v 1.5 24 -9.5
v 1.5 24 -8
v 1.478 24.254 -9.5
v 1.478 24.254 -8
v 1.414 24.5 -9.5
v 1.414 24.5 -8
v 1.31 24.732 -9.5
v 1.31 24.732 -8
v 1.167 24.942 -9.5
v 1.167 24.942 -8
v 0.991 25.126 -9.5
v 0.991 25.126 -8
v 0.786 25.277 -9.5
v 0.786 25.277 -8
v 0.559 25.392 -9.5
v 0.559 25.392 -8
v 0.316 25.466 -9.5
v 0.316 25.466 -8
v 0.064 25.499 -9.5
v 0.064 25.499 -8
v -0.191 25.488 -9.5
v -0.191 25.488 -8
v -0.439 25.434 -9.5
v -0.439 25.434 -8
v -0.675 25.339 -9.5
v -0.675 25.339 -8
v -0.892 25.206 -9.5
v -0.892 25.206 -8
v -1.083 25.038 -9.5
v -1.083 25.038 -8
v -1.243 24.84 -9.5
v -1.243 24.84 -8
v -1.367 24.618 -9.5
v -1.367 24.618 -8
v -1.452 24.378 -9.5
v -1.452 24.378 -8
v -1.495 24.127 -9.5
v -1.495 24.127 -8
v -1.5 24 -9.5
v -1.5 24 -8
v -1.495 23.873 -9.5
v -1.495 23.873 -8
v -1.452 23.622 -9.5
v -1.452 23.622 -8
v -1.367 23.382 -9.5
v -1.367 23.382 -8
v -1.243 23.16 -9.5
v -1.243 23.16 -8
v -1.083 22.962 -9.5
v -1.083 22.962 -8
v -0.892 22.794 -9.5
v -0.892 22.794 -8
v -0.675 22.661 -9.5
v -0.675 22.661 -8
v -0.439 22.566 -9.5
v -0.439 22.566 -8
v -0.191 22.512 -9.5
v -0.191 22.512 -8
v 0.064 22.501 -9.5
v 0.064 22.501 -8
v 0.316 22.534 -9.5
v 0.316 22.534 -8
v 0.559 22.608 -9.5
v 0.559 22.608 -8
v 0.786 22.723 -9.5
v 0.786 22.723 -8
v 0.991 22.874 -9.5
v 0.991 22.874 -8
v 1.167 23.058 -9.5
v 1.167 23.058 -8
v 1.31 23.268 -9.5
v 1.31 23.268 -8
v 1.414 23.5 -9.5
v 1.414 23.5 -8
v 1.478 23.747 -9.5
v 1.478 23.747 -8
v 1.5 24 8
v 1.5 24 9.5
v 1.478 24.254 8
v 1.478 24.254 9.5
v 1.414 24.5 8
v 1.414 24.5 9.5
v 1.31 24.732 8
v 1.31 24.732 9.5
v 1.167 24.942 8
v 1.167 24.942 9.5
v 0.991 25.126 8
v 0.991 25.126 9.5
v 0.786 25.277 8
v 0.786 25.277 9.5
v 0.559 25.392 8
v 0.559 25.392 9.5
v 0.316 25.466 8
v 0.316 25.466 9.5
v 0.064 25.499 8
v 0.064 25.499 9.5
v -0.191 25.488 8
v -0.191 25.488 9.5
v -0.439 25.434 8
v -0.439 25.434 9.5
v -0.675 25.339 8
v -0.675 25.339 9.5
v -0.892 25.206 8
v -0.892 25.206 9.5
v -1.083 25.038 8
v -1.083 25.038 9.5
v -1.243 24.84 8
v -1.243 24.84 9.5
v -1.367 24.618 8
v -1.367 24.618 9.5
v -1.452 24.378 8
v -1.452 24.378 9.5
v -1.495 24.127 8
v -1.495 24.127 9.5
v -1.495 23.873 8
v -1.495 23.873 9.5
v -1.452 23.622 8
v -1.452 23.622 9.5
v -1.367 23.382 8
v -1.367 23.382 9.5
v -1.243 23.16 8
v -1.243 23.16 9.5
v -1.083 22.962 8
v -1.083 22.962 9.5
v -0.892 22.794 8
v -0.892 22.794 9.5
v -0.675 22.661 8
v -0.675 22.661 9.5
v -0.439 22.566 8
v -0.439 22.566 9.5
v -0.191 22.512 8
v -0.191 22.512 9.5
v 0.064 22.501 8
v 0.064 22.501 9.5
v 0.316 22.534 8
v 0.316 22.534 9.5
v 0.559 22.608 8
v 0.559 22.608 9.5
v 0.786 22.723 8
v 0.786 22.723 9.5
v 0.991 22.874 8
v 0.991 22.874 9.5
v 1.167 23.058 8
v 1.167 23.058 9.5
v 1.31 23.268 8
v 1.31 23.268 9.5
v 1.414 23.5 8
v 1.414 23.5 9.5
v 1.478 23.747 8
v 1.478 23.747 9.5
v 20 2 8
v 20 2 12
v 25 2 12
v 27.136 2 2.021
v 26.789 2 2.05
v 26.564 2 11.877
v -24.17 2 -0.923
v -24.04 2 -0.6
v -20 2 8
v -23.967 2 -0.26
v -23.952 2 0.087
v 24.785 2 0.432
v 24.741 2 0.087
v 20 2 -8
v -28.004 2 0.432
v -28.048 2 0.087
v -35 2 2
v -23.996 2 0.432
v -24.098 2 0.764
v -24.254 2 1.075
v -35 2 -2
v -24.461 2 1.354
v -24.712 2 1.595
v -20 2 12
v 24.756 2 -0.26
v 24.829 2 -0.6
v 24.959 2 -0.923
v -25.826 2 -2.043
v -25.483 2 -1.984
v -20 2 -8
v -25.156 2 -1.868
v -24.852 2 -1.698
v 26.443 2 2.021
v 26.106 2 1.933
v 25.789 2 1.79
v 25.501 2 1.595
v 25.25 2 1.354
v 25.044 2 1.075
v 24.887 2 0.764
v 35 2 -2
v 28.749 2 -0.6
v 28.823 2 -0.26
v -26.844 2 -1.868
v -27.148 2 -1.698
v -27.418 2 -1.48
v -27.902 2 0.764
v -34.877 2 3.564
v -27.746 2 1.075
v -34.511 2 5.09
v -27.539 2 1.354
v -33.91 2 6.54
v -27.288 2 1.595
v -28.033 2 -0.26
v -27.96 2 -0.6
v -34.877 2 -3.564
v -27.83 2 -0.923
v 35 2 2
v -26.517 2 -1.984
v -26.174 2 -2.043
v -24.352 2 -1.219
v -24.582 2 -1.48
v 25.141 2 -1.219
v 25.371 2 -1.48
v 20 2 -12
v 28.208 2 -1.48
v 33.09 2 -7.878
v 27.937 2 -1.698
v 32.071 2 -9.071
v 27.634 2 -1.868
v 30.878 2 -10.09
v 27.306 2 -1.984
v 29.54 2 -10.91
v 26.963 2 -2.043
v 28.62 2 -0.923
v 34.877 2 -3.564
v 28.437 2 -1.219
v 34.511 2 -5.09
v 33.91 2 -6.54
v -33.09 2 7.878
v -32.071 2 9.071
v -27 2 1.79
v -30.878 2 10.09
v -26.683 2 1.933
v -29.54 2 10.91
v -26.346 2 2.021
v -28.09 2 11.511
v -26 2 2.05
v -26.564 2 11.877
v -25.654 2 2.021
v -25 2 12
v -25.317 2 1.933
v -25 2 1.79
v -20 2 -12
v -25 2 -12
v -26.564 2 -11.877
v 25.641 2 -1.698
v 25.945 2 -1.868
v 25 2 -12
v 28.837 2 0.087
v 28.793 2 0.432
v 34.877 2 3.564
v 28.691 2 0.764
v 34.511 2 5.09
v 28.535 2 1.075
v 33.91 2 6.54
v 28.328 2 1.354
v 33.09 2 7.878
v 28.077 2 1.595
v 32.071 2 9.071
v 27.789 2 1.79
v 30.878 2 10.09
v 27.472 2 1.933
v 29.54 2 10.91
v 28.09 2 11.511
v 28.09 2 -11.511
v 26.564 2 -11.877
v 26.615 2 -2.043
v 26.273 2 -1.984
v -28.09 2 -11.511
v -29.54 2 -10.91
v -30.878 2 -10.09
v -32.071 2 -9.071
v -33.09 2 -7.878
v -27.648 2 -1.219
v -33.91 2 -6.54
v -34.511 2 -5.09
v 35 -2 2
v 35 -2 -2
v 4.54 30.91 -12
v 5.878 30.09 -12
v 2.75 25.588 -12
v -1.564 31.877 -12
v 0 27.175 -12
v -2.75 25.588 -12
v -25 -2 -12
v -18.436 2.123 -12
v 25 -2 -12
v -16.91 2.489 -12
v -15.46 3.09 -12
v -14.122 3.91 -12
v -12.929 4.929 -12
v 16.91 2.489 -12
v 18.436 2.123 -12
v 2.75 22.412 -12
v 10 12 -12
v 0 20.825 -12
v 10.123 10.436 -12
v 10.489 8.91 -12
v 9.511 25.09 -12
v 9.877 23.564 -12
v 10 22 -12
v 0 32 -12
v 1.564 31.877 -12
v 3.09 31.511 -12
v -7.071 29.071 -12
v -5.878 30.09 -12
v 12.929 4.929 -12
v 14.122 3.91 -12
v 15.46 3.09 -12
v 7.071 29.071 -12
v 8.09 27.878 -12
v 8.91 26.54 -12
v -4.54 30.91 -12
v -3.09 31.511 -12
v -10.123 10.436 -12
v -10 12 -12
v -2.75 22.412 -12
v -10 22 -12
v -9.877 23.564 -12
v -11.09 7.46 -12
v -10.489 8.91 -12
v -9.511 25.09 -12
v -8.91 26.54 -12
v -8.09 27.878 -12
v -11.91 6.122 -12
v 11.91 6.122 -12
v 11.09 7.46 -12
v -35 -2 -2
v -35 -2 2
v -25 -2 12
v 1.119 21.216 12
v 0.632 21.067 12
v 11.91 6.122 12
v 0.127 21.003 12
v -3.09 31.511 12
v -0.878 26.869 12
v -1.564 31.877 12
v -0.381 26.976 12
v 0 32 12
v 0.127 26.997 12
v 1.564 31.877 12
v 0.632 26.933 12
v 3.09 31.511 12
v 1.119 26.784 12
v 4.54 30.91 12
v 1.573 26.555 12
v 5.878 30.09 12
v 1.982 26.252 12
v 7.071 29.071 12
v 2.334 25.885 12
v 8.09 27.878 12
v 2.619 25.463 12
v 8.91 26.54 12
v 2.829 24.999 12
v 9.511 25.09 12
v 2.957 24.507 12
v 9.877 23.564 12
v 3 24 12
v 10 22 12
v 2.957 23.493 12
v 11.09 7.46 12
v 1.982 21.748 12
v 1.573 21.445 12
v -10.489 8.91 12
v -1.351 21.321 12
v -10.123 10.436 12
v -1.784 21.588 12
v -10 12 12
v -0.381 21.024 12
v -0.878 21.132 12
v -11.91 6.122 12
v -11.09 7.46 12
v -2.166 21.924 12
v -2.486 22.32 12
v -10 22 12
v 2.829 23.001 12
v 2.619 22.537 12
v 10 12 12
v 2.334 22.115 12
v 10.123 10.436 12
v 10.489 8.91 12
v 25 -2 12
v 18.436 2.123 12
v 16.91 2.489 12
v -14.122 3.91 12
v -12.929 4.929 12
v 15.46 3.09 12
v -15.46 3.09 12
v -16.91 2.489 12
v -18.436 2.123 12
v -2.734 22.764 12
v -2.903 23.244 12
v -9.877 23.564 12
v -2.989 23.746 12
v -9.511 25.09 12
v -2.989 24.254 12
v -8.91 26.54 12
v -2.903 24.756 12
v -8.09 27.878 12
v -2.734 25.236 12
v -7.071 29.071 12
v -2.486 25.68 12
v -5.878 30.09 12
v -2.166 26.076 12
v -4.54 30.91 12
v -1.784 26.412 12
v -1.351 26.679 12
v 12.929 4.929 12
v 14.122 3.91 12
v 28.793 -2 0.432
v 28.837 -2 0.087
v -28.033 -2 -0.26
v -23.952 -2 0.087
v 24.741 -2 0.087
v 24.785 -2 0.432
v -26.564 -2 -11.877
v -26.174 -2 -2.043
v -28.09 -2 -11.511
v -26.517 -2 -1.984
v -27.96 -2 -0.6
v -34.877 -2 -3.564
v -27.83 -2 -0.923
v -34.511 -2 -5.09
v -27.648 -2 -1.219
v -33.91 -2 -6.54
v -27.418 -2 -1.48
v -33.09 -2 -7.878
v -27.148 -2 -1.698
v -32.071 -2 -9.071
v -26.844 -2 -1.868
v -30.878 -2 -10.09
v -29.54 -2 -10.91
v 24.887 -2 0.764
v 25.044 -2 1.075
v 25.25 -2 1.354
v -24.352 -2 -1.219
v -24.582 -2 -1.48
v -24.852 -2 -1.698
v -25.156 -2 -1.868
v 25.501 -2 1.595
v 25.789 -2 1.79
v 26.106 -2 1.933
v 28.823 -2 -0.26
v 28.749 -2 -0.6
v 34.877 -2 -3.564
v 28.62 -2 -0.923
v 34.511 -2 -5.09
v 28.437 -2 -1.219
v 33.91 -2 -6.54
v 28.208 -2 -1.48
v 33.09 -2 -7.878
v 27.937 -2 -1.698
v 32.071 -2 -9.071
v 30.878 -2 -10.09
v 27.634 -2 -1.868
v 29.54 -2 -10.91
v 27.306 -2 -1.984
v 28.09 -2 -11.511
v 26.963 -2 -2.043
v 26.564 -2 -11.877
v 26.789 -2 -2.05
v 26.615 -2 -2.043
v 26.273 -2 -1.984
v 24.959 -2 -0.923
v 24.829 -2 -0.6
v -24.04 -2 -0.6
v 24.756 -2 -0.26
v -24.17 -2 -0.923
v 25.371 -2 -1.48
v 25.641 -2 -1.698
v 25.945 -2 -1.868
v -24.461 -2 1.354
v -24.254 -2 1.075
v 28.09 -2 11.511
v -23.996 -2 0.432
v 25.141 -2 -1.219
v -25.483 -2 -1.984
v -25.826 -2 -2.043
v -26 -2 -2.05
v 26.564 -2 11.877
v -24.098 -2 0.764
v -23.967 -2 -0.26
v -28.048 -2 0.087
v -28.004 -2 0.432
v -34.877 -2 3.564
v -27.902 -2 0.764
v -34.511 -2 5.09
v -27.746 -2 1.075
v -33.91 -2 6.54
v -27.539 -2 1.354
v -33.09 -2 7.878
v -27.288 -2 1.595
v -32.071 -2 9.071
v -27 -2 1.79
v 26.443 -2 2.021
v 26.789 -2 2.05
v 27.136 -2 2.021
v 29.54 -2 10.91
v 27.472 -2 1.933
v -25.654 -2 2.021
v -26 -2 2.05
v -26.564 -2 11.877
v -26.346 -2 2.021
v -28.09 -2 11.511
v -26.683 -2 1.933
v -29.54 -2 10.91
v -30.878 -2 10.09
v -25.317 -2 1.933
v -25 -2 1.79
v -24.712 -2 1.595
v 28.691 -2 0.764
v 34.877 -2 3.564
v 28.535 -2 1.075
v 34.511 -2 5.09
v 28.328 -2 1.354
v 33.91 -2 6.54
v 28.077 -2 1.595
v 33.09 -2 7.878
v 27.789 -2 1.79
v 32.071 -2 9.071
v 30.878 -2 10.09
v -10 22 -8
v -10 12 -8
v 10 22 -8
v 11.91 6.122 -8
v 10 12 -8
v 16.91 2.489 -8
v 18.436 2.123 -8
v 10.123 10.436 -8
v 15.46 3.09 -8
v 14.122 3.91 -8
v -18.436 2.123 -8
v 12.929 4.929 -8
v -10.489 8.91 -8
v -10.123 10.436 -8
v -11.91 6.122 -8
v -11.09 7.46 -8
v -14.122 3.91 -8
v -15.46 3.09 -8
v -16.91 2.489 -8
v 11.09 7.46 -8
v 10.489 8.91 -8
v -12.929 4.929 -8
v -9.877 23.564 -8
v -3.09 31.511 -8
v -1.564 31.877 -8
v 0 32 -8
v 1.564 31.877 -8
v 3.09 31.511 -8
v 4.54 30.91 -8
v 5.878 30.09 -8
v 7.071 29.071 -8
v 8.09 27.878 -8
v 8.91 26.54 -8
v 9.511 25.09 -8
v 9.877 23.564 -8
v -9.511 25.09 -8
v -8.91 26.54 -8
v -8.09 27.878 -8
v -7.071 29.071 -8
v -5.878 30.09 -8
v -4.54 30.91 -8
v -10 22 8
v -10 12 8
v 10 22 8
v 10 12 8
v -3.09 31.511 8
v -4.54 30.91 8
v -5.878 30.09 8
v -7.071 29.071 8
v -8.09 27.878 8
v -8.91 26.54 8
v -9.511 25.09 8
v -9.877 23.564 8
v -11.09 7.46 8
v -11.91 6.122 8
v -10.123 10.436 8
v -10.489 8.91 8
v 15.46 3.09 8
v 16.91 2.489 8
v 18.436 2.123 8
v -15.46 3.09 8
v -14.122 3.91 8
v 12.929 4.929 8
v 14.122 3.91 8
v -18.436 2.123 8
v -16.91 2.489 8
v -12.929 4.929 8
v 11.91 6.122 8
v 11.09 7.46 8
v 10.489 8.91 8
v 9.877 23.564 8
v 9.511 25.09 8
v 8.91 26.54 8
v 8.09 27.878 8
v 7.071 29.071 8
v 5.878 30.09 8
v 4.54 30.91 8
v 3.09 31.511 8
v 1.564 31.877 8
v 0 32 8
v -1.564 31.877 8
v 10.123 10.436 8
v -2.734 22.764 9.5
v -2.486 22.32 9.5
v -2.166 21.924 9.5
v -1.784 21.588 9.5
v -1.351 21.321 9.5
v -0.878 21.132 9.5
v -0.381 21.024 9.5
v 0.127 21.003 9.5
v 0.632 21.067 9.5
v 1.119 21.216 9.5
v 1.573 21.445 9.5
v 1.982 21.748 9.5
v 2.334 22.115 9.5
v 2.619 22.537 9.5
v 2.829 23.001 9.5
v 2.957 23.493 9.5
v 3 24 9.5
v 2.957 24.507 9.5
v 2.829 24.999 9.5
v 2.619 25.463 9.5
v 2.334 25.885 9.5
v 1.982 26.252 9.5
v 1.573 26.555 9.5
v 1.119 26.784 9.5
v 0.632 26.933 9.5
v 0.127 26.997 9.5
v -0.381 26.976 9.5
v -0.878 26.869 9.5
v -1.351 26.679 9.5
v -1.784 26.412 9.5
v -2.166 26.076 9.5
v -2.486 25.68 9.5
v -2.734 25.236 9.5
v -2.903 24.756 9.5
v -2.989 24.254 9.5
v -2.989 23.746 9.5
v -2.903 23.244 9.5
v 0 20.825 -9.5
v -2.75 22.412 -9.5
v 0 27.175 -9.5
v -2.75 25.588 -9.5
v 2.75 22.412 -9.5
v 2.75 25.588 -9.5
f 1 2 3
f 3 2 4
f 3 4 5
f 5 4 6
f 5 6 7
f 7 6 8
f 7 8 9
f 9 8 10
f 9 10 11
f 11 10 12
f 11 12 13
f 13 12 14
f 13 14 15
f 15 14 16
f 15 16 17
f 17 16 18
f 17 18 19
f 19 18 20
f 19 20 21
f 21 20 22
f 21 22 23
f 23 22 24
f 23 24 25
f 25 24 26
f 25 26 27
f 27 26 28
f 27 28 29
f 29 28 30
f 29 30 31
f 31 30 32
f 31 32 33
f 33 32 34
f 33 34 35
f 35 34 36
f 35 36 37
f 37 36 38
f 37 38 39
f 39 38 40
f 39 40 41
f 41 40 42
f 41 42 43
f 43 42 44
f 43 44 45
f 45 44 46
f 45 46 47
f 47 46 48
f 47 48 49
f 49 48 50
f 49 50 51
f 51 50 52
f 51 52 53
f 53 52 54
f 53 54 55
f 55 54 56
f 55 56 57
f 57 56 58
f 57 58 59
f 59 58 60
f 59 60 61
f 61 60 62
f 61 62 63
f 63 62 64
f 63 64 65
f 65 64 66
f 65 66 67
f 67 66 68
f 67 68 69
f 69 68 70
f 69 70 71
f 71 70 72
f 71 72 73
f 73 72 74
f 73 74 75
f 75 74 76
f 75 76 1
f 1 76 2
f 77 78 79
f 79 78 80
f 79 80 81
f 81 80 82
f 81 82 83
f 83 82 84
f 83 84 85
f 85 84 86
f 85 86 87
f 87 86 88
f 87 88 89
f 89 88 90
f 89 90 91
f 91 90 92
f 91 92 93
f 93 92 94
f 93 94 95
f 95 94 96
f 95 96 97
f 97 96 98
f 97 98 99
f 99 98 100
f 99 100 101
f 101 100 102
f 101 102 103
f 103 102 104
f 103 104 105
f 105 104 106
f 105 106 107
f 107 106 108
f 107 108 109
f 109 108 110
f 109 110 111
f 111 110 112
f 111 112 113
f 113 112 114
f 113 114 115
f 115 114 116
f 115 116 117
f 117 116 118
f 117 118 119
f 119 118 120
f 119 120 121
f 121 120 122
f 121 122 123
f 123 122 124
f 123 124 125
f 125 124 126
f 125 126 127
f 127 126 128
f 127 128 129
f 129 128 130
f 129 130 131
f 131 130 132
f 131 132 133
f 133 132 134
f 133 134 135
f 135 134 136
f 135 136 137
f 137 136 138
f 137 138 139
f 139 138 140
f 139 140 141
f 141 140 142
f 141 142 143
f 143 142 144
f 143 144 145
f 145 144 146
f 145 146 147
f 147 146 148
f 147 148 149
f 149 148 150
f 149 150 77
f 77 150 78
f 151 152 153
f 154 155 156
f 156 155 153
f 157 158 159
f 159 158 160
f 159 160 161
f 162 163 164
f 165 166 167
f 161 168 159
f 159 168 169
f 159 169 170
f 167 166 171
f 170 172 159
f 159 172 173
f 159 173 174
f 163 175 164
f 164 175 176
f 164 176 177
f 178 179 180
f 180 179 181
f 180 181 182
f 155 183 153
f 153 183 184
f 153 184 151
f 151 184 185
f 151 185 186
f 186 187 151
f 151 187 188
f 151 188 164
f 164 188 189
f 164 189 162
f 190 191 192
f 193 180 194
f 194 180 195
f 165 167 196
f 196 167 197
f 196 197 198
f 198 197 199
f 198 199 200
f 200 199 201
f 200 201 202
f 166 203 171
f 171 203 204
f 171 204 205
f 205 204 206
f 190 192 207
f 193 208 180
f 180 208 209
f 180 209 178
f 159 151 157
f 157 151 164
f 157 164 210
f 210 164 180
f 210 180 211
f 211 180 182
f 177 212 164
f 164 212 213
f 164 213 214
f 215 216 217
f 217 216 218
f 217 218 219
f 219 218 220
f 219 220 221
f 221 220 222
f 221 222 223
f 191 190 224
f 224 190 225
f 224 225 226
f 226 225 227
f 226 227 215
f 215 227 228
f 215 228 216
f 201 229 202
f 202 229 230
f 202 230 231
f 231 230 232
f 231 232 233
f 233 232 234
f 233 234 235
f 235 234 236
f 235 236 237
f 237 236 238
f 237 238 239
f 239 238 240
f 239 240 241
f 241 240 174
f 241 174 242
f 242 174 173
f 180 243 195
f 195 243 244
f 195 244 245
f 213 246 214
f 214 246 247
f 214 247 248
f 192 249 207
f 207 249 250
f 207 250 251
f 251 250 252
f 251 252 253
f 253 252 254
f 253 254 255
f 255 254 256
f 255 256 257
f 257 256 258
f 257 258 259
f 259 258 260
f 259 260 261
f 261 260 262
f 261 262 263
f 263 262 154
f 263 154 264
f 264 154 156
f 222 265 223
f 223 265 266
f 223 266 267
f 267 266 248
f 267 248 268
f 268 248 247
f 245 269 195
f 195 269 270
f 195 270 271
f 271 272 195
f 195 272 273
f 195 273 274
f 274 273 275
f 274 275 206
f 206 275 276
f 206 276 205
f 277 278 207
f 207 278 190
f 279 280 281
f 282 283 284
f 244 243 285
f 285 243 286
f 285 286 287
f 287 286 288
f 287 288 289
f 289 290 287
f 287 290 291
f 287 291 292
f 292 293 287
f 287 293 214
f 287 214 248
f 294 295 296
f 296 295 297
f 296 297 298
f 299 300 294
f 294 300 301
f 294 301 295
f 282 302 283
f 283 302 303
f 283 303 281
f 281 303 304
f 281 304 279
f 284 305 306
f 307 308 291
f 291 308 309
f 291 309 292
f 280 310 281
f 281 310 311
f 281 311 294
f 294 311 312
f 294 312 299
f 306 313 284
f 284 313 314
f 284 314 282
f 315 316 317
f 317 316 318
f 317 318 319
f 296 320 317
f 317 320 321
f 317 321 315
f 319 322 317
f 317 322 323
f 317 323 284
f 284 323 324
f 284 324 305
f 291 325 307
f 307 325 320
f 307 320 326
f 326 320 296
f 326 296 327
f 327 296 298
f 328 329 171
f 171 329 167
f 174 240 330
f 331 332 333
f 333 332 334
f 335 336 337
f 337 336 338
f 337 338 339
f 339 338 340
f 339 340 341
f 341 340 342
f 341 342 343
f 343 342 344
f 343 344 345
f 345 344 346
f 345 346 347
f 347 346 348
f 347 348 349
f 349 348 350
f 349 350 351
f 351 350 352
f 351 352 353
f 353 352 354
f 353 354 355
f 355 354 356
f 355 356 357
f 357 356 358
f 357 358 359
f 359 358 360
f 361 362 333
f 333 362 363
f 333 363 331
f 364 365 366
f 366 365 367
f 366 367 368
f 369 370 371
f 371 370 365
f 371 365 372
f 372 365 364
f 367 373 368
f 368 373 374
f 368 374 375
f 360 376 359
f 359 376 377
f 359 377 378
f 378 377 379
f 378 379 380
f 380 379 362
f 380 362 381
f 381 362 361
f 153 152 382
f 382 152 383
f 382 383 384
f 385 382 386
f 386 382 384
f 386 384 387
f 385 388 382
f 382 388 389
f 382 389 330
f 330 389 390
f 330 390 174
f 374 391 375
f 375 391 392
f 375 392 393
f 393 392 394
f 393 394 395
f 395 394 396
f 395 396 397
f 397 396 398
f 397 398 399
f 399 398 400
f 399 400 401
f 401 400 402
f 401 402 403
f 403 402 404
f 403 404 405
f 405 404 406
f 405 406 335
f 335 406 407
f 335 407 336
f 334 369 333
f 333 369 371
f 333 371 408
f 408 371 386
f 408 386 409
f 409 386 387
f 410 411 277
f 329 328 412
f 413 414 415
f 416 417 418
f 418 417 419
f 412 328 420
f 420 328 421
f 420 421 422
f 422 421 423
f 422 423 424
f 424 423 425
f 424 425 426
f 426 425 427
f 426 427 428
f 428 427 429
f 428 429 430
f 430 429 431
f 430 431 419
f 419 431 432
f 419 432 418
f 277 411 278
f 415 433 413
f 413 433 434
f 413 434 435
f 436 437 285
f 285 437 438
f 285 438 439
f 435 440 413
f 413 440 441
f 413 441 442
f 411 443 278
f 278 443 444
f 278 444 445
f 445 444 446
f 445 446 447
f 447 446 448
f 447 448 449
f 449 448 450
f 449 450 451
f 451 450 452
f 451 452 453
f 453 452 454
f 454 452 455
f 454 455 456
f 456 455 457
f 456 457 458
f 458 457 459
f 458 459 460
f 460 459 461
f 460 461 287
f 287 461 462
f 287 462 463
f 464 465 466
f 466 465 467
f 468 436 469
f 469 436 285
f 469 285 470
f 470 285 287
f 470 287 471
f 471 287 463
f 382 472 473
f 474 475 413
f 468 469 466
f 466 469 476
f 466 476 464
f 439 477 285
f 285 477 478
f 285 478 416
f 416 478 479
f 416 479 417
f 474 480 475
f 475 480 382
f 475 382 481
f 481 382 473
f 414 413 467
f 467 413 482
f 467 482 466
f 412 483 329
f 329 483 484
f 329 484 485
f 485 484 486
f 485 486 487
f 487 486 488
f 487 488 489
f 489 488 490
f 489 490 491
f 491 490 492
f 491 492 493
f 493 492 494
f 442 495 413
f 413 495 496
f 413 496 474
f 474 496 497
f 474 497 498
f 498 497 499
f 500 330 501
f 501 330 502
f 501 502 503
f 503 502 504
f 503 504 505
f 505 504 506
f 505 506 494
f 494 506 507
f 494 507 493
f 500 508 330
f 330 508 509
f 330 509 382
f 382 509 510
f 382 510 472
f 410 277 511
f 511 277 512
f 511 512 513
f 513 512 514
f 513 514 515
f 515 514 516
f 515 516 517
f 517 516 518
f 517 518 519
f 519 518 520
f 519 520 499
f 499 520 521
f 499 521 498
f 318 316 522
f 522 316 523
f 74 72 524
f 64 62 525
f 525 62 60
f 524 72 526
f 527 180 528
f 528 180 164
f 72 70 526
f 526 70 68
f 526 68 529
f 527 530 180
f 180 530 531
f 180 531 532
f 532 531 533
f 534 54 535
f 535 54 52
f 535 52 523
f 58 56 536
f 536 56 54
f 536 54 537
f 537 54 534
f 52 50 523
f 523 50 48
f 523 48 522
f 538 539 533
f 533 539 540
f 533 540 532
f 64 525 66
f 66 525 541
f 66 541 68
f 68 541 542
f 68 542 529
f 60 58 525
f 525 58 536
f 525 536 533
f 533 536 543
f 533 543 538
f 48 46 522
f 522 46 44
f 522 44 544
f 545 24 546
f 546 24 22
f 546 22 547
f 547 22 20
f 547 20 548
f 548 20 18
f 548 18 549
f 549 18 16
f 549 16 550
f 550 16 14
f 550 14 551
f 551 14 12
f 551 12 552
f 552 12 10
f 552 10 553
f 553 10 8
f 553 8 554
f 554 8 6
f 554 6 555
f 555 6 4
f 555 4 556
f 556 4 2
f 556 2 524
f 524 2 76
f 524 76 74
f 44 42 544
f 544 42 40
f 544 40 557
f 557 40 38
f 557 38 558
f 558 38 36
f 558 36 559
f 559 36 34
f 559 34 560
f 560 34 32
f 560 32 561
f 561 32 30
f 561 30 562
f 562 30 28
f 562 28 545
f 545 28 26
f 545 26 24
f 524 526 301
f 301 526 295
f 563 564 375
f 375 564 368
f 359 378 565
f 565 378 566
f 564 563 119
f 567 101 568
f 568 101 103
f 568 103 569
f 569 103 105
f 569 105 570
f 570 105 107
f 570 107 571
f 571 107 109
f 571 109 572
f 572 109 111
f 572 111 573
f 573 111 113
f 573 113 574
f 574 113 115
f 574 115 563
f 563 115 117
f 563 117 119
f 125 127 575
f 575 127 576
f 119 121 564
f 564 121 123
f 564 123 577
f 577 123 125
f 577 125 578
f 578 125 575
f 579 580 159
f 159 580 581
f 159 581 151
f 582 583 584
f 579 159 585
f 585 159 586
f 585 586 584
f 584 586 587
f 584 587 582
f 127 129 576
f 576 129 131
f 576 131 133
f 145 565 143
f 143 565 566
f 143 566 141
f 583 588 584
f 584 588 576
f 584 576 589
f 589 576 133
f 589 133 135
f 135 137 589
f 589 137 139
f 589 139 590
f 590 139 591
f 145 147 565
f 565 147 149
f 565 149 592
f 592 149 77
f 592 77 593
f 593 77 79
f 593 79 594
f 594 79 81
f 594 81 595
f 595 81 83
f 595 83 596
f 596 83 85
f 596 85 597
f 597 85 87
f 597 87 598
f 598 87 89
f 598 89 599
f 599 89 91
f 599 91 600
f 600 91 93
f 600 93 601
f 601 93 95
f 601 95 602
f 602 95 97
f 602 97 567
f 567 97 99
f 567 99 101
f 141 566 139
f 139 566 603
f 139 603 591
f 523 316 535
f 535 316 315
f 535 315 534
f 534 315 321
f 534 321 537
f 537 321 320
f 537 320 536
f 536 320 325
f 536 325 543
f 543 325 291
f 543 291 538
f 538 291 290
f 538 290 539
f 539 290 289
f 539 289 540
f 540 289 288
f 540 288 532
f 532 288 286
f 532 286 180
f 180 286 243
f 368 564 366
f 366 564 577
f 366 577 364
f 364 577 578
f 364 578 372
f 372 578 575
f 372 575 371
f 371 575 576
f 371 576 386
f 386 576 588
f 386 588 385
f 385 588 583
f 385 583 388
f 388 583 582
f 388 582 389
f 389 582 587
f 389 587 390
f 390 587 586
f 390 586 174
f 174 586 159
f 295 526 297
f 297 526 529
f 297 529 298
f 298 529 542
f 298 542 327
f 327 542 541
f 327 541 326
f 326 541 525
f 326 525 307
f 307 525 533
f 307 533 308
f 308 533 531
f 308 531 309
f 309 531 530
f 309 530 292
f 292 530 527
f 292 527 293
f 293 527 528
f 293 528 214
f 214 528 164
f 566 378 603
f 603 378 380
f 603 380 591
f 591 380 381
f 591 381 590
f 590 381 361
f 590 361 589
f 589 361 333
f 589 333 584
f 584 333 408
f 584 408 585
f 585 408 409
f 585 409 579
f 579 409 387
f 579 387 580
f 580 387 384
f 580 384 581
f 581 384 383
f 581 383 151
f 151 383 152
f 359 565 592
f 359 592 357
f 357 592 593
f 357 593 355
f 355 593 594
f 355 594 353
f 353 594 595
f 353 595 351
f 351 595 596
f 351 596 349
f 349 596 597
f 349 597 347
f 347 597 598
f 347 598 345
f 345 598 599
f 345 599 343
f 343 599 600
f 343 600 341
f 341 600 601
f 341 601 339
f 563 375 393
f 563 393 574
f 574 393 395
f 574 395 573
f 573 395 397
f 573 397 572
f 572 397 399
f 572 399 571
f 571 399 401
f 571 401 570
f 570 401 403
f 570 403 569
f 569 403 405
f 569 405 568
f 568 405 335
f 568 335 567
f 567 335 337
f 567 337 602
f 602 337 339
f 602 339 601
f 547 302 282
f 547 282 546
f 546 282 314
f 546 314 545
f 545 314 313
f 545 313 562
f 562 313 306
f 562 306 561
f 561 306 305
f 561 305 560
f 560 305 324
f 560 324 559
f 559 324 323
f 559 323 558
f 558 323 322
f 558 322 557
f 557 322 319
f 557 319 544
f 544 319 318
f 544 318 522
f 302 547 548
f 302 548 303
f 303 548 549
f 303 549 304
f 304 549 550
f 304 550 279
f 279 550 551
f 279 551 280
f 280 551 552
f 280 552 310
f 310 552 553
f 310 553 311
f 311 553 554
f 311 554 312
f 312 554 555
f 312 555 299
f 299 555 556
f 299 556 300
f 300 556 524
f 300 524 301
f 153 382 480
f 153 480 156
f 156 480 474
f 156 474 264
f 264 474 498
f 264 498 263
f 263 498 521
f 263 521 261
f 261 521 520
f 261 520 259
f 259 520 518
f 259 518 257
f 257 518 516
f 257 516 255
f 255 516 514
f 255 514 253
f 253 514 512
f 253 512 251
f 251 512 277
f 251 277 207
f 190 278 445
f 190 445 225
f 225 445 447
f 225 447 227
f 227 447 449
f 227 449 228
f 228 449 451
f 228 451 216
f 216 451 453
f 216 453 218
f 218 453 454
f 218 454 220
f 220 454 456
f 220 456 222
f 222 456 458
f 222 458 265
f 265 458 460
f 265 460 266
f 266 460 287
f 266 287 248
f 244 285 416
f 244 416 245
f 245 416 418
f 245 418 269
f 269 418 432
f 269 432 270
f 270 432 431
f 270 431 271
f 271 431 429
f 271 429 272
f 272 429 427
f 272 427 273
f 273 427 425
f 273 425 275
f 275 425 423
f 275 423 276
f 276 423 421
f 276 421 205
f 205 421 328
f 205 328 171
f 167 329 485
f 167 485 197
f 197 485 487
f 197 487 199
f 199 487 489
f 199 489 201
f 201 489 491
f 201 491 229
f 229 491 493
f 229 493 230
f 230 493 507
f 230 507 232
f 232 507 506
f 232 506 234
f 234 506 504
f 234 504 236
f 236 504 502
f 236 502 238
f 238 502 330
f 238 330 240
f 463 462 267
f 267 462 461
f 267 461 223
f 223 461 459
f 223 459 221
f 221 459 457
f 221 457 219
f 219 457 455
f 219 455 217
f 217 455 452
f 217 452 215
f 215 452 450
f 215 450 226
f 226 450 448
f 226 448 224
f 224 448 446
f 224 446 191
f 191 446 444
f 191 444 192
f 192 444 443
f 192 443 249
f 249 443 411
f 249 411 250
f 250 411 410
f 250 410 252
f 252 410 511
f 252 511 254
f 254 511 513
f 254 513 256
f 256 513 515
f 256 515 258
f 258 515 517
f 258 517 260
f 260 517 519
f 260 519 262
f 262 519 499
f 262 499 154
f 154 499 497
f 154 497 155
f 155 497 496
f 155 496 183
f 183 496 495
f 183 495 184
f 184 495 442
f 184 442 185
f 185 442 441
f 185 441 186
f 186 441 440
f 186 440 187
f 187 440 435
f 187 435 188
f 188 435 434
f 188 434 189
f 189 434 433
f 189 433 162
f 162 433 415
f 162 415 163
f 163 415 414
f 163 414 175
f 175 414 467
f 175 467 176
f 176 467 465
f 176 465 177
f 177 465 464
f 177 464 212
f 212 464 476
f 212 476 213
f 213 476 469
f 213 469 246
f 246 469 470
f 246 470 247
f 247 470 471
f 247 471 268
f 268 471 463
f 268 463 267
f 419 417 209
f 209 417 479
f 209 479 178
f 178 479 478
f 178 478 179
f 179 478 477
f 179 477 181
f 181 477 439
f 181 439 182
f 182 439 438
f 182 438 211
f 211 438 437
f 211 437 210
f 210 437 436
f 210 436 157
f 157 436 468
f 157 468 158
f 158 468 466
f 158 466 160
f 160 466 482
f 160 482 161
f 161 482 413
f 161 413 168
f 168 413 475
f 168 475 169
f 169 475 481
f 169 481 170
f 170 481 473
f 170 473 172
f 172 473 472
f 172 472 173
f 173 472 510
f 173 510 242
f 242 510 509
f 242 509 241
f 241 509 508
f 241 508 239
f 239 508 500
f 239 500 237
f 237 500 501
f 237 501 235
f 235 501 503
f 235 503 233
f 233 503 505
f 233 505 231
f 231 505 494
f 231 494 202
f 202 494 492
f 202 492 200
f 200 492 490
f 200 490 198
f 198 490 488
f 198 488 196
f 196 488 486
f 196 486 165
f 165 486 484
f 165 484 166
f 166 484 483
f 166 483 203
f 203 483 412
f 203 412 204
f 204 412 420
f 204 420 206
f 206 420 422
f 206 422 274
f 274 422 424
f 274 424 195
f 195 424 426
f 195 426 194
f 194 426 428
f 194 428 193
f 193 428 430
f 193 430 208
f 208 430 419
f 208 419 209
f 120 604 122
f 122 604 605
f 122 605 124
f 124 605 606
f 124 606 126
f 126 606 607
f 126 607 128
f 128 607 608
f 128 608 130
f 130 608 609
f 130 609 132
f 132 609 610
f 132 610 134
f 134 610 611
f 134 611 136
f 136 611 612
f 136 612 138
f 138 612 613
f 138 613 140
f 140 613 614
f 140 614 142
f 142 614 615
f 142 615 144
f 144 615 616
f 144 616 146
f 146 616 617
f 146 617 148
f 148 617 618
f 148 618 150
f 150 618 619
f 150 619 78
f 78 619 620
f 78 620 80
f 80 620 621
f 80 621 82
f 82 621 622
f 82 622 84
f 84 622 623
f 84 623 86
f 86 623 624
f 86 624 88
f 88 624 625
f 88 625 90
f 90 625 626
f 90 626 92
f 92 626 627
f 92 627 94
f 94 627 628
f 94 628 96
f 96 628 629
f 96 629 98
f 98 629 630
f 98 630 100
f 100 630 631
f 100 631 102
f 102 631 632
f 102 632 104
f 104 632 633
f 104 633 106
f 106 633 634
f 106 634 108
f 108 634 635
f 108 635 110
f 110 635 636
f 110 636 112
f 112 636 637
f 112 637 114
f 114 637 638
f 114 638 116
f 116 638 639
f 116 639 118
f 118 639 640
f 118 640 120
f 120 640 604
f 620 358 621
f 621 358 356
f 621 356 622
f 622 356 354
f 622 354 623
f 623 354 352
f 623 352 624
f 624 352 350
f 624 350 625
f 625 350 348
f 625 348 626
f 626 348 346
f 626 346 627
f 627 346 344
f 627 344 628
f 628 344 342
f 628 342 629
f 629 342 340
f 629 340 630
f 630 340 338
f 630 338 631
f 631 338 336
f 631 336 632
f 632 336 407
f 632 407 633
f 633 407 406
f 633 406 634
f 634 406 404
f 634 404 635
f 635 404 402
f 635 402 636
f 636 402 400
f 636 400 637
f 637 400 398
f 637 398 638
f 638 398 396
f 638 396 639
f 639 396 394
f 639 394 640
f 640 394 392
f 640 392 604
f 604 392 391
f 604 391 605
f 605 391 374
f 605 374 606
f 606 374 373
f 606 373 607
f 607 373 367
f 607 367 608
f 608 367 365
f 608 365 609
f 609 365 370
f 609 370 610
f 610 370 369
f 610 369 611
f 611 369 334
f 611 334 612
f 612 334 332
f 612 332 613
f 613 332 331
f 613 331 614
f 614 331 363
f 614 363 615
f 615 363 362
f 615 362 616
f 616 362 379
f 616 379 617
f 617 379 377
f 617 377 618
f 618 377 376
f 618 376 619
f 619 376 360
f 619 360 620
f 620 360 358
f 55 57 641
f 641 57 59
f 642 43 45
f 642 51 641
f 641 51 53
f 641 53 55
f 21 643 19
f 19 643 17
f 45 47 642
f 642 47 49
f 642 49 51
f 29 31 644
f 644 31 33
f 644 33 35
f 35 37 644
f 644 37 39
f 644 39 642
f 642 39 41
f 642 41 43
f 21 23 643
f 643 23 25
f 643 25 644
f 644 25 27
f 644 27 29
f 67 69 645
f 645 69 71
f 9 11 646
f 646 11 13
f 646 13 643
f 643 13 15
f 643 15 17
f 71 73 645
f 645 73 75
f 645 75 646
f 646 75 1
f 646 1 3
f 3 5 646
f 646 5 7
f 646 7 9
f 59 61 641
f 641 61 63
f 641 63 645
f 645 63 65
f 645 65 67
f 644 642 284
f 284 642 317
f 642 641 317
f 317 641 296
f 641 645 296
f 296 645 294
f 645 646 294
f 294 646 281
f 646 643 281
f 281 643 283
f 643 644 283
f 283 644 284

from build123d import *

# Parameters (mm, degrees)
SKETCH1_W           = 70
SKETCH1_H           = 24
BOSS_EXTRUDE1_DEPTH = 2
SKETCH2_W           = 20
SKETCH2_H           = 4
BOSS_EXTRUDE2_DEPTH = 30
FILLET1_R           = 10
FILLET2_R           = 10
CUT_EXTRUDE1_REACH  = 55.151
SKETCH3_R           = 1.5
FILLET3_R           = 10
SKETCH4_R           = 2.05
CUT_EXTRUDE2_DEPTH  = 4
SKETCH5_R           = 3
CUT_EXTRUDE3_DEPTH  = 2.5
CUT_EXTRUDE4_DEPTH  = 2.5


with BuildPart() as part:
    # Sketch1 → Boss-Extrude1 (new, symmetric)
    with BuildSketch(Plane(origin=(0, 0, 0), x_dir=(1, 0, 0), z_dir=(0, 1, 0))):
        Rectangle(SKETCH1_W, SKETCH1_H)
    extrude(amount=BOSS_EXTRUDE1_DEPTH, both=True)

    # Sketch2 → Boss-Extrude2 (add)
    with BuildSketch(Plane(origin=(0, 2, 0), x_dir=(1, 0, 0), z_dir=(0, 1, 0))):
        with Locations((0, 10)):
            Rectangle(SKETCH2_W, SKETCH2_H)
        with Locations((0, -10)):
            Rectangle(SKETCH2_W, SKETCH2_H)
    extrude(amount=BOSS_EXTRUDE2_DEPTH)

    # Fillet1
    fillet1_edges = [part.edges().sort_by_distance(p)[0] for p in [
        (-10, 2, -10),
        (10, 2, -10),
        (-10, 2, 10),
        (10, 2, 10),
    ]]
    fillet(fillet1_edges, radius=FILLET1_R)

    # Fillet2
    fillet2_edges = [part.edges().sort_by_distance(p)[0] for p in [
        (-10, 32, 10),
        (10, 32, 10),
        (10, 32, -10),
        (-10, 32, -10),
    ]]
    fillet(fillet2_edges, radius=FILLET2_R - 0.0001)  # a hair under: the kernel refuses the full size

    # Cut-Extrude1: up to this face of the body (flat: up to its plane)
    cut_extrude1_end = Plane(part.part.faces().sort_by_distance((0, 10.345619741, -12))[0])
    # Sketch3 → Cut-Extrude1 (cut, up to the picked face)
    with BuildSketch(Plane.XY.offset(12), mode=Mode.PRIVATE) as cut_extrude1_sk1:
        with Locations((0, 24)):
            Circle(SKETCH3_R)
    cut_extrude1_tool1 = split(extrude(cut_extrude1_sk1.sketch, amount=-CUT_EXTRUDE1_REACH, mode=Mode.PRIVATE), bisect_by=cut_extrude1_end, keep=Keep.BOTH, mode=Mode.PRIVATE)
    add(cut_extrude1_tool1.solids().sort_by(Axis((0, 24, 12), (0, 0, -1)))[0], mode=Mode.SUBTRACT)

    # Fillet3
    fillet3_edges = [part.edges().sort_by_distance(p)[0] for p in [
        (35, 0, 12),
        (-35, 0, 12),
        (-35, 0, -12),
        (35, 0, -12),
    ]]
    fillet(fillet3_edges, radius=FILLET3_R)

    # Sketch4 → Cut-Extrude2 (cut)
    with BuildSketch(Plane(origin=(0, 2, 0), x_dir=(1, 0, 0), z_dir=(0, 1, 0))):
        with Locations(Location((-26, 0, 0), (0, 0, 270))):
            Circle(SKETCH4_R)
        with Locations(Location((26.78915656, 0, 0), (0, 0, 270))):
            Circle(SKETCH4_R)
    extrude(amount=-CUT_EXTRUDE2_DEPTH, mode=Mode.SUBTRACT)

    # Sketch5 → Cut-Extrude3 (cut)
    with BuildSketch(Plane.XY.offset(12)):
        with Locations((0, 24)):
            Circle(SKETCH5_R)
    extrude(amount=-CUT_EXTRUDE3_DEPTH, mode=Mode.SUBTRACT)

    # Sketch6 → Cut-Extrude4 (cut)
    with BuildSketch(Plane(origin=(0, 0, -12), x_dir=(-1, 0, 0), z_dir=(0, 0, -1))):
        Polygon((2.75, 25.58771324), (0, 27.175426481), (-2.75, 25.58771324), (-2.75, 22.41228676), (0, 20.824573519), (2.75, 22.41228676), align=None)
    extrude(amount=-CUT_EXTRUDE4_DEPTH, mode=Mode.SUBTRACT)


solid = part.part
